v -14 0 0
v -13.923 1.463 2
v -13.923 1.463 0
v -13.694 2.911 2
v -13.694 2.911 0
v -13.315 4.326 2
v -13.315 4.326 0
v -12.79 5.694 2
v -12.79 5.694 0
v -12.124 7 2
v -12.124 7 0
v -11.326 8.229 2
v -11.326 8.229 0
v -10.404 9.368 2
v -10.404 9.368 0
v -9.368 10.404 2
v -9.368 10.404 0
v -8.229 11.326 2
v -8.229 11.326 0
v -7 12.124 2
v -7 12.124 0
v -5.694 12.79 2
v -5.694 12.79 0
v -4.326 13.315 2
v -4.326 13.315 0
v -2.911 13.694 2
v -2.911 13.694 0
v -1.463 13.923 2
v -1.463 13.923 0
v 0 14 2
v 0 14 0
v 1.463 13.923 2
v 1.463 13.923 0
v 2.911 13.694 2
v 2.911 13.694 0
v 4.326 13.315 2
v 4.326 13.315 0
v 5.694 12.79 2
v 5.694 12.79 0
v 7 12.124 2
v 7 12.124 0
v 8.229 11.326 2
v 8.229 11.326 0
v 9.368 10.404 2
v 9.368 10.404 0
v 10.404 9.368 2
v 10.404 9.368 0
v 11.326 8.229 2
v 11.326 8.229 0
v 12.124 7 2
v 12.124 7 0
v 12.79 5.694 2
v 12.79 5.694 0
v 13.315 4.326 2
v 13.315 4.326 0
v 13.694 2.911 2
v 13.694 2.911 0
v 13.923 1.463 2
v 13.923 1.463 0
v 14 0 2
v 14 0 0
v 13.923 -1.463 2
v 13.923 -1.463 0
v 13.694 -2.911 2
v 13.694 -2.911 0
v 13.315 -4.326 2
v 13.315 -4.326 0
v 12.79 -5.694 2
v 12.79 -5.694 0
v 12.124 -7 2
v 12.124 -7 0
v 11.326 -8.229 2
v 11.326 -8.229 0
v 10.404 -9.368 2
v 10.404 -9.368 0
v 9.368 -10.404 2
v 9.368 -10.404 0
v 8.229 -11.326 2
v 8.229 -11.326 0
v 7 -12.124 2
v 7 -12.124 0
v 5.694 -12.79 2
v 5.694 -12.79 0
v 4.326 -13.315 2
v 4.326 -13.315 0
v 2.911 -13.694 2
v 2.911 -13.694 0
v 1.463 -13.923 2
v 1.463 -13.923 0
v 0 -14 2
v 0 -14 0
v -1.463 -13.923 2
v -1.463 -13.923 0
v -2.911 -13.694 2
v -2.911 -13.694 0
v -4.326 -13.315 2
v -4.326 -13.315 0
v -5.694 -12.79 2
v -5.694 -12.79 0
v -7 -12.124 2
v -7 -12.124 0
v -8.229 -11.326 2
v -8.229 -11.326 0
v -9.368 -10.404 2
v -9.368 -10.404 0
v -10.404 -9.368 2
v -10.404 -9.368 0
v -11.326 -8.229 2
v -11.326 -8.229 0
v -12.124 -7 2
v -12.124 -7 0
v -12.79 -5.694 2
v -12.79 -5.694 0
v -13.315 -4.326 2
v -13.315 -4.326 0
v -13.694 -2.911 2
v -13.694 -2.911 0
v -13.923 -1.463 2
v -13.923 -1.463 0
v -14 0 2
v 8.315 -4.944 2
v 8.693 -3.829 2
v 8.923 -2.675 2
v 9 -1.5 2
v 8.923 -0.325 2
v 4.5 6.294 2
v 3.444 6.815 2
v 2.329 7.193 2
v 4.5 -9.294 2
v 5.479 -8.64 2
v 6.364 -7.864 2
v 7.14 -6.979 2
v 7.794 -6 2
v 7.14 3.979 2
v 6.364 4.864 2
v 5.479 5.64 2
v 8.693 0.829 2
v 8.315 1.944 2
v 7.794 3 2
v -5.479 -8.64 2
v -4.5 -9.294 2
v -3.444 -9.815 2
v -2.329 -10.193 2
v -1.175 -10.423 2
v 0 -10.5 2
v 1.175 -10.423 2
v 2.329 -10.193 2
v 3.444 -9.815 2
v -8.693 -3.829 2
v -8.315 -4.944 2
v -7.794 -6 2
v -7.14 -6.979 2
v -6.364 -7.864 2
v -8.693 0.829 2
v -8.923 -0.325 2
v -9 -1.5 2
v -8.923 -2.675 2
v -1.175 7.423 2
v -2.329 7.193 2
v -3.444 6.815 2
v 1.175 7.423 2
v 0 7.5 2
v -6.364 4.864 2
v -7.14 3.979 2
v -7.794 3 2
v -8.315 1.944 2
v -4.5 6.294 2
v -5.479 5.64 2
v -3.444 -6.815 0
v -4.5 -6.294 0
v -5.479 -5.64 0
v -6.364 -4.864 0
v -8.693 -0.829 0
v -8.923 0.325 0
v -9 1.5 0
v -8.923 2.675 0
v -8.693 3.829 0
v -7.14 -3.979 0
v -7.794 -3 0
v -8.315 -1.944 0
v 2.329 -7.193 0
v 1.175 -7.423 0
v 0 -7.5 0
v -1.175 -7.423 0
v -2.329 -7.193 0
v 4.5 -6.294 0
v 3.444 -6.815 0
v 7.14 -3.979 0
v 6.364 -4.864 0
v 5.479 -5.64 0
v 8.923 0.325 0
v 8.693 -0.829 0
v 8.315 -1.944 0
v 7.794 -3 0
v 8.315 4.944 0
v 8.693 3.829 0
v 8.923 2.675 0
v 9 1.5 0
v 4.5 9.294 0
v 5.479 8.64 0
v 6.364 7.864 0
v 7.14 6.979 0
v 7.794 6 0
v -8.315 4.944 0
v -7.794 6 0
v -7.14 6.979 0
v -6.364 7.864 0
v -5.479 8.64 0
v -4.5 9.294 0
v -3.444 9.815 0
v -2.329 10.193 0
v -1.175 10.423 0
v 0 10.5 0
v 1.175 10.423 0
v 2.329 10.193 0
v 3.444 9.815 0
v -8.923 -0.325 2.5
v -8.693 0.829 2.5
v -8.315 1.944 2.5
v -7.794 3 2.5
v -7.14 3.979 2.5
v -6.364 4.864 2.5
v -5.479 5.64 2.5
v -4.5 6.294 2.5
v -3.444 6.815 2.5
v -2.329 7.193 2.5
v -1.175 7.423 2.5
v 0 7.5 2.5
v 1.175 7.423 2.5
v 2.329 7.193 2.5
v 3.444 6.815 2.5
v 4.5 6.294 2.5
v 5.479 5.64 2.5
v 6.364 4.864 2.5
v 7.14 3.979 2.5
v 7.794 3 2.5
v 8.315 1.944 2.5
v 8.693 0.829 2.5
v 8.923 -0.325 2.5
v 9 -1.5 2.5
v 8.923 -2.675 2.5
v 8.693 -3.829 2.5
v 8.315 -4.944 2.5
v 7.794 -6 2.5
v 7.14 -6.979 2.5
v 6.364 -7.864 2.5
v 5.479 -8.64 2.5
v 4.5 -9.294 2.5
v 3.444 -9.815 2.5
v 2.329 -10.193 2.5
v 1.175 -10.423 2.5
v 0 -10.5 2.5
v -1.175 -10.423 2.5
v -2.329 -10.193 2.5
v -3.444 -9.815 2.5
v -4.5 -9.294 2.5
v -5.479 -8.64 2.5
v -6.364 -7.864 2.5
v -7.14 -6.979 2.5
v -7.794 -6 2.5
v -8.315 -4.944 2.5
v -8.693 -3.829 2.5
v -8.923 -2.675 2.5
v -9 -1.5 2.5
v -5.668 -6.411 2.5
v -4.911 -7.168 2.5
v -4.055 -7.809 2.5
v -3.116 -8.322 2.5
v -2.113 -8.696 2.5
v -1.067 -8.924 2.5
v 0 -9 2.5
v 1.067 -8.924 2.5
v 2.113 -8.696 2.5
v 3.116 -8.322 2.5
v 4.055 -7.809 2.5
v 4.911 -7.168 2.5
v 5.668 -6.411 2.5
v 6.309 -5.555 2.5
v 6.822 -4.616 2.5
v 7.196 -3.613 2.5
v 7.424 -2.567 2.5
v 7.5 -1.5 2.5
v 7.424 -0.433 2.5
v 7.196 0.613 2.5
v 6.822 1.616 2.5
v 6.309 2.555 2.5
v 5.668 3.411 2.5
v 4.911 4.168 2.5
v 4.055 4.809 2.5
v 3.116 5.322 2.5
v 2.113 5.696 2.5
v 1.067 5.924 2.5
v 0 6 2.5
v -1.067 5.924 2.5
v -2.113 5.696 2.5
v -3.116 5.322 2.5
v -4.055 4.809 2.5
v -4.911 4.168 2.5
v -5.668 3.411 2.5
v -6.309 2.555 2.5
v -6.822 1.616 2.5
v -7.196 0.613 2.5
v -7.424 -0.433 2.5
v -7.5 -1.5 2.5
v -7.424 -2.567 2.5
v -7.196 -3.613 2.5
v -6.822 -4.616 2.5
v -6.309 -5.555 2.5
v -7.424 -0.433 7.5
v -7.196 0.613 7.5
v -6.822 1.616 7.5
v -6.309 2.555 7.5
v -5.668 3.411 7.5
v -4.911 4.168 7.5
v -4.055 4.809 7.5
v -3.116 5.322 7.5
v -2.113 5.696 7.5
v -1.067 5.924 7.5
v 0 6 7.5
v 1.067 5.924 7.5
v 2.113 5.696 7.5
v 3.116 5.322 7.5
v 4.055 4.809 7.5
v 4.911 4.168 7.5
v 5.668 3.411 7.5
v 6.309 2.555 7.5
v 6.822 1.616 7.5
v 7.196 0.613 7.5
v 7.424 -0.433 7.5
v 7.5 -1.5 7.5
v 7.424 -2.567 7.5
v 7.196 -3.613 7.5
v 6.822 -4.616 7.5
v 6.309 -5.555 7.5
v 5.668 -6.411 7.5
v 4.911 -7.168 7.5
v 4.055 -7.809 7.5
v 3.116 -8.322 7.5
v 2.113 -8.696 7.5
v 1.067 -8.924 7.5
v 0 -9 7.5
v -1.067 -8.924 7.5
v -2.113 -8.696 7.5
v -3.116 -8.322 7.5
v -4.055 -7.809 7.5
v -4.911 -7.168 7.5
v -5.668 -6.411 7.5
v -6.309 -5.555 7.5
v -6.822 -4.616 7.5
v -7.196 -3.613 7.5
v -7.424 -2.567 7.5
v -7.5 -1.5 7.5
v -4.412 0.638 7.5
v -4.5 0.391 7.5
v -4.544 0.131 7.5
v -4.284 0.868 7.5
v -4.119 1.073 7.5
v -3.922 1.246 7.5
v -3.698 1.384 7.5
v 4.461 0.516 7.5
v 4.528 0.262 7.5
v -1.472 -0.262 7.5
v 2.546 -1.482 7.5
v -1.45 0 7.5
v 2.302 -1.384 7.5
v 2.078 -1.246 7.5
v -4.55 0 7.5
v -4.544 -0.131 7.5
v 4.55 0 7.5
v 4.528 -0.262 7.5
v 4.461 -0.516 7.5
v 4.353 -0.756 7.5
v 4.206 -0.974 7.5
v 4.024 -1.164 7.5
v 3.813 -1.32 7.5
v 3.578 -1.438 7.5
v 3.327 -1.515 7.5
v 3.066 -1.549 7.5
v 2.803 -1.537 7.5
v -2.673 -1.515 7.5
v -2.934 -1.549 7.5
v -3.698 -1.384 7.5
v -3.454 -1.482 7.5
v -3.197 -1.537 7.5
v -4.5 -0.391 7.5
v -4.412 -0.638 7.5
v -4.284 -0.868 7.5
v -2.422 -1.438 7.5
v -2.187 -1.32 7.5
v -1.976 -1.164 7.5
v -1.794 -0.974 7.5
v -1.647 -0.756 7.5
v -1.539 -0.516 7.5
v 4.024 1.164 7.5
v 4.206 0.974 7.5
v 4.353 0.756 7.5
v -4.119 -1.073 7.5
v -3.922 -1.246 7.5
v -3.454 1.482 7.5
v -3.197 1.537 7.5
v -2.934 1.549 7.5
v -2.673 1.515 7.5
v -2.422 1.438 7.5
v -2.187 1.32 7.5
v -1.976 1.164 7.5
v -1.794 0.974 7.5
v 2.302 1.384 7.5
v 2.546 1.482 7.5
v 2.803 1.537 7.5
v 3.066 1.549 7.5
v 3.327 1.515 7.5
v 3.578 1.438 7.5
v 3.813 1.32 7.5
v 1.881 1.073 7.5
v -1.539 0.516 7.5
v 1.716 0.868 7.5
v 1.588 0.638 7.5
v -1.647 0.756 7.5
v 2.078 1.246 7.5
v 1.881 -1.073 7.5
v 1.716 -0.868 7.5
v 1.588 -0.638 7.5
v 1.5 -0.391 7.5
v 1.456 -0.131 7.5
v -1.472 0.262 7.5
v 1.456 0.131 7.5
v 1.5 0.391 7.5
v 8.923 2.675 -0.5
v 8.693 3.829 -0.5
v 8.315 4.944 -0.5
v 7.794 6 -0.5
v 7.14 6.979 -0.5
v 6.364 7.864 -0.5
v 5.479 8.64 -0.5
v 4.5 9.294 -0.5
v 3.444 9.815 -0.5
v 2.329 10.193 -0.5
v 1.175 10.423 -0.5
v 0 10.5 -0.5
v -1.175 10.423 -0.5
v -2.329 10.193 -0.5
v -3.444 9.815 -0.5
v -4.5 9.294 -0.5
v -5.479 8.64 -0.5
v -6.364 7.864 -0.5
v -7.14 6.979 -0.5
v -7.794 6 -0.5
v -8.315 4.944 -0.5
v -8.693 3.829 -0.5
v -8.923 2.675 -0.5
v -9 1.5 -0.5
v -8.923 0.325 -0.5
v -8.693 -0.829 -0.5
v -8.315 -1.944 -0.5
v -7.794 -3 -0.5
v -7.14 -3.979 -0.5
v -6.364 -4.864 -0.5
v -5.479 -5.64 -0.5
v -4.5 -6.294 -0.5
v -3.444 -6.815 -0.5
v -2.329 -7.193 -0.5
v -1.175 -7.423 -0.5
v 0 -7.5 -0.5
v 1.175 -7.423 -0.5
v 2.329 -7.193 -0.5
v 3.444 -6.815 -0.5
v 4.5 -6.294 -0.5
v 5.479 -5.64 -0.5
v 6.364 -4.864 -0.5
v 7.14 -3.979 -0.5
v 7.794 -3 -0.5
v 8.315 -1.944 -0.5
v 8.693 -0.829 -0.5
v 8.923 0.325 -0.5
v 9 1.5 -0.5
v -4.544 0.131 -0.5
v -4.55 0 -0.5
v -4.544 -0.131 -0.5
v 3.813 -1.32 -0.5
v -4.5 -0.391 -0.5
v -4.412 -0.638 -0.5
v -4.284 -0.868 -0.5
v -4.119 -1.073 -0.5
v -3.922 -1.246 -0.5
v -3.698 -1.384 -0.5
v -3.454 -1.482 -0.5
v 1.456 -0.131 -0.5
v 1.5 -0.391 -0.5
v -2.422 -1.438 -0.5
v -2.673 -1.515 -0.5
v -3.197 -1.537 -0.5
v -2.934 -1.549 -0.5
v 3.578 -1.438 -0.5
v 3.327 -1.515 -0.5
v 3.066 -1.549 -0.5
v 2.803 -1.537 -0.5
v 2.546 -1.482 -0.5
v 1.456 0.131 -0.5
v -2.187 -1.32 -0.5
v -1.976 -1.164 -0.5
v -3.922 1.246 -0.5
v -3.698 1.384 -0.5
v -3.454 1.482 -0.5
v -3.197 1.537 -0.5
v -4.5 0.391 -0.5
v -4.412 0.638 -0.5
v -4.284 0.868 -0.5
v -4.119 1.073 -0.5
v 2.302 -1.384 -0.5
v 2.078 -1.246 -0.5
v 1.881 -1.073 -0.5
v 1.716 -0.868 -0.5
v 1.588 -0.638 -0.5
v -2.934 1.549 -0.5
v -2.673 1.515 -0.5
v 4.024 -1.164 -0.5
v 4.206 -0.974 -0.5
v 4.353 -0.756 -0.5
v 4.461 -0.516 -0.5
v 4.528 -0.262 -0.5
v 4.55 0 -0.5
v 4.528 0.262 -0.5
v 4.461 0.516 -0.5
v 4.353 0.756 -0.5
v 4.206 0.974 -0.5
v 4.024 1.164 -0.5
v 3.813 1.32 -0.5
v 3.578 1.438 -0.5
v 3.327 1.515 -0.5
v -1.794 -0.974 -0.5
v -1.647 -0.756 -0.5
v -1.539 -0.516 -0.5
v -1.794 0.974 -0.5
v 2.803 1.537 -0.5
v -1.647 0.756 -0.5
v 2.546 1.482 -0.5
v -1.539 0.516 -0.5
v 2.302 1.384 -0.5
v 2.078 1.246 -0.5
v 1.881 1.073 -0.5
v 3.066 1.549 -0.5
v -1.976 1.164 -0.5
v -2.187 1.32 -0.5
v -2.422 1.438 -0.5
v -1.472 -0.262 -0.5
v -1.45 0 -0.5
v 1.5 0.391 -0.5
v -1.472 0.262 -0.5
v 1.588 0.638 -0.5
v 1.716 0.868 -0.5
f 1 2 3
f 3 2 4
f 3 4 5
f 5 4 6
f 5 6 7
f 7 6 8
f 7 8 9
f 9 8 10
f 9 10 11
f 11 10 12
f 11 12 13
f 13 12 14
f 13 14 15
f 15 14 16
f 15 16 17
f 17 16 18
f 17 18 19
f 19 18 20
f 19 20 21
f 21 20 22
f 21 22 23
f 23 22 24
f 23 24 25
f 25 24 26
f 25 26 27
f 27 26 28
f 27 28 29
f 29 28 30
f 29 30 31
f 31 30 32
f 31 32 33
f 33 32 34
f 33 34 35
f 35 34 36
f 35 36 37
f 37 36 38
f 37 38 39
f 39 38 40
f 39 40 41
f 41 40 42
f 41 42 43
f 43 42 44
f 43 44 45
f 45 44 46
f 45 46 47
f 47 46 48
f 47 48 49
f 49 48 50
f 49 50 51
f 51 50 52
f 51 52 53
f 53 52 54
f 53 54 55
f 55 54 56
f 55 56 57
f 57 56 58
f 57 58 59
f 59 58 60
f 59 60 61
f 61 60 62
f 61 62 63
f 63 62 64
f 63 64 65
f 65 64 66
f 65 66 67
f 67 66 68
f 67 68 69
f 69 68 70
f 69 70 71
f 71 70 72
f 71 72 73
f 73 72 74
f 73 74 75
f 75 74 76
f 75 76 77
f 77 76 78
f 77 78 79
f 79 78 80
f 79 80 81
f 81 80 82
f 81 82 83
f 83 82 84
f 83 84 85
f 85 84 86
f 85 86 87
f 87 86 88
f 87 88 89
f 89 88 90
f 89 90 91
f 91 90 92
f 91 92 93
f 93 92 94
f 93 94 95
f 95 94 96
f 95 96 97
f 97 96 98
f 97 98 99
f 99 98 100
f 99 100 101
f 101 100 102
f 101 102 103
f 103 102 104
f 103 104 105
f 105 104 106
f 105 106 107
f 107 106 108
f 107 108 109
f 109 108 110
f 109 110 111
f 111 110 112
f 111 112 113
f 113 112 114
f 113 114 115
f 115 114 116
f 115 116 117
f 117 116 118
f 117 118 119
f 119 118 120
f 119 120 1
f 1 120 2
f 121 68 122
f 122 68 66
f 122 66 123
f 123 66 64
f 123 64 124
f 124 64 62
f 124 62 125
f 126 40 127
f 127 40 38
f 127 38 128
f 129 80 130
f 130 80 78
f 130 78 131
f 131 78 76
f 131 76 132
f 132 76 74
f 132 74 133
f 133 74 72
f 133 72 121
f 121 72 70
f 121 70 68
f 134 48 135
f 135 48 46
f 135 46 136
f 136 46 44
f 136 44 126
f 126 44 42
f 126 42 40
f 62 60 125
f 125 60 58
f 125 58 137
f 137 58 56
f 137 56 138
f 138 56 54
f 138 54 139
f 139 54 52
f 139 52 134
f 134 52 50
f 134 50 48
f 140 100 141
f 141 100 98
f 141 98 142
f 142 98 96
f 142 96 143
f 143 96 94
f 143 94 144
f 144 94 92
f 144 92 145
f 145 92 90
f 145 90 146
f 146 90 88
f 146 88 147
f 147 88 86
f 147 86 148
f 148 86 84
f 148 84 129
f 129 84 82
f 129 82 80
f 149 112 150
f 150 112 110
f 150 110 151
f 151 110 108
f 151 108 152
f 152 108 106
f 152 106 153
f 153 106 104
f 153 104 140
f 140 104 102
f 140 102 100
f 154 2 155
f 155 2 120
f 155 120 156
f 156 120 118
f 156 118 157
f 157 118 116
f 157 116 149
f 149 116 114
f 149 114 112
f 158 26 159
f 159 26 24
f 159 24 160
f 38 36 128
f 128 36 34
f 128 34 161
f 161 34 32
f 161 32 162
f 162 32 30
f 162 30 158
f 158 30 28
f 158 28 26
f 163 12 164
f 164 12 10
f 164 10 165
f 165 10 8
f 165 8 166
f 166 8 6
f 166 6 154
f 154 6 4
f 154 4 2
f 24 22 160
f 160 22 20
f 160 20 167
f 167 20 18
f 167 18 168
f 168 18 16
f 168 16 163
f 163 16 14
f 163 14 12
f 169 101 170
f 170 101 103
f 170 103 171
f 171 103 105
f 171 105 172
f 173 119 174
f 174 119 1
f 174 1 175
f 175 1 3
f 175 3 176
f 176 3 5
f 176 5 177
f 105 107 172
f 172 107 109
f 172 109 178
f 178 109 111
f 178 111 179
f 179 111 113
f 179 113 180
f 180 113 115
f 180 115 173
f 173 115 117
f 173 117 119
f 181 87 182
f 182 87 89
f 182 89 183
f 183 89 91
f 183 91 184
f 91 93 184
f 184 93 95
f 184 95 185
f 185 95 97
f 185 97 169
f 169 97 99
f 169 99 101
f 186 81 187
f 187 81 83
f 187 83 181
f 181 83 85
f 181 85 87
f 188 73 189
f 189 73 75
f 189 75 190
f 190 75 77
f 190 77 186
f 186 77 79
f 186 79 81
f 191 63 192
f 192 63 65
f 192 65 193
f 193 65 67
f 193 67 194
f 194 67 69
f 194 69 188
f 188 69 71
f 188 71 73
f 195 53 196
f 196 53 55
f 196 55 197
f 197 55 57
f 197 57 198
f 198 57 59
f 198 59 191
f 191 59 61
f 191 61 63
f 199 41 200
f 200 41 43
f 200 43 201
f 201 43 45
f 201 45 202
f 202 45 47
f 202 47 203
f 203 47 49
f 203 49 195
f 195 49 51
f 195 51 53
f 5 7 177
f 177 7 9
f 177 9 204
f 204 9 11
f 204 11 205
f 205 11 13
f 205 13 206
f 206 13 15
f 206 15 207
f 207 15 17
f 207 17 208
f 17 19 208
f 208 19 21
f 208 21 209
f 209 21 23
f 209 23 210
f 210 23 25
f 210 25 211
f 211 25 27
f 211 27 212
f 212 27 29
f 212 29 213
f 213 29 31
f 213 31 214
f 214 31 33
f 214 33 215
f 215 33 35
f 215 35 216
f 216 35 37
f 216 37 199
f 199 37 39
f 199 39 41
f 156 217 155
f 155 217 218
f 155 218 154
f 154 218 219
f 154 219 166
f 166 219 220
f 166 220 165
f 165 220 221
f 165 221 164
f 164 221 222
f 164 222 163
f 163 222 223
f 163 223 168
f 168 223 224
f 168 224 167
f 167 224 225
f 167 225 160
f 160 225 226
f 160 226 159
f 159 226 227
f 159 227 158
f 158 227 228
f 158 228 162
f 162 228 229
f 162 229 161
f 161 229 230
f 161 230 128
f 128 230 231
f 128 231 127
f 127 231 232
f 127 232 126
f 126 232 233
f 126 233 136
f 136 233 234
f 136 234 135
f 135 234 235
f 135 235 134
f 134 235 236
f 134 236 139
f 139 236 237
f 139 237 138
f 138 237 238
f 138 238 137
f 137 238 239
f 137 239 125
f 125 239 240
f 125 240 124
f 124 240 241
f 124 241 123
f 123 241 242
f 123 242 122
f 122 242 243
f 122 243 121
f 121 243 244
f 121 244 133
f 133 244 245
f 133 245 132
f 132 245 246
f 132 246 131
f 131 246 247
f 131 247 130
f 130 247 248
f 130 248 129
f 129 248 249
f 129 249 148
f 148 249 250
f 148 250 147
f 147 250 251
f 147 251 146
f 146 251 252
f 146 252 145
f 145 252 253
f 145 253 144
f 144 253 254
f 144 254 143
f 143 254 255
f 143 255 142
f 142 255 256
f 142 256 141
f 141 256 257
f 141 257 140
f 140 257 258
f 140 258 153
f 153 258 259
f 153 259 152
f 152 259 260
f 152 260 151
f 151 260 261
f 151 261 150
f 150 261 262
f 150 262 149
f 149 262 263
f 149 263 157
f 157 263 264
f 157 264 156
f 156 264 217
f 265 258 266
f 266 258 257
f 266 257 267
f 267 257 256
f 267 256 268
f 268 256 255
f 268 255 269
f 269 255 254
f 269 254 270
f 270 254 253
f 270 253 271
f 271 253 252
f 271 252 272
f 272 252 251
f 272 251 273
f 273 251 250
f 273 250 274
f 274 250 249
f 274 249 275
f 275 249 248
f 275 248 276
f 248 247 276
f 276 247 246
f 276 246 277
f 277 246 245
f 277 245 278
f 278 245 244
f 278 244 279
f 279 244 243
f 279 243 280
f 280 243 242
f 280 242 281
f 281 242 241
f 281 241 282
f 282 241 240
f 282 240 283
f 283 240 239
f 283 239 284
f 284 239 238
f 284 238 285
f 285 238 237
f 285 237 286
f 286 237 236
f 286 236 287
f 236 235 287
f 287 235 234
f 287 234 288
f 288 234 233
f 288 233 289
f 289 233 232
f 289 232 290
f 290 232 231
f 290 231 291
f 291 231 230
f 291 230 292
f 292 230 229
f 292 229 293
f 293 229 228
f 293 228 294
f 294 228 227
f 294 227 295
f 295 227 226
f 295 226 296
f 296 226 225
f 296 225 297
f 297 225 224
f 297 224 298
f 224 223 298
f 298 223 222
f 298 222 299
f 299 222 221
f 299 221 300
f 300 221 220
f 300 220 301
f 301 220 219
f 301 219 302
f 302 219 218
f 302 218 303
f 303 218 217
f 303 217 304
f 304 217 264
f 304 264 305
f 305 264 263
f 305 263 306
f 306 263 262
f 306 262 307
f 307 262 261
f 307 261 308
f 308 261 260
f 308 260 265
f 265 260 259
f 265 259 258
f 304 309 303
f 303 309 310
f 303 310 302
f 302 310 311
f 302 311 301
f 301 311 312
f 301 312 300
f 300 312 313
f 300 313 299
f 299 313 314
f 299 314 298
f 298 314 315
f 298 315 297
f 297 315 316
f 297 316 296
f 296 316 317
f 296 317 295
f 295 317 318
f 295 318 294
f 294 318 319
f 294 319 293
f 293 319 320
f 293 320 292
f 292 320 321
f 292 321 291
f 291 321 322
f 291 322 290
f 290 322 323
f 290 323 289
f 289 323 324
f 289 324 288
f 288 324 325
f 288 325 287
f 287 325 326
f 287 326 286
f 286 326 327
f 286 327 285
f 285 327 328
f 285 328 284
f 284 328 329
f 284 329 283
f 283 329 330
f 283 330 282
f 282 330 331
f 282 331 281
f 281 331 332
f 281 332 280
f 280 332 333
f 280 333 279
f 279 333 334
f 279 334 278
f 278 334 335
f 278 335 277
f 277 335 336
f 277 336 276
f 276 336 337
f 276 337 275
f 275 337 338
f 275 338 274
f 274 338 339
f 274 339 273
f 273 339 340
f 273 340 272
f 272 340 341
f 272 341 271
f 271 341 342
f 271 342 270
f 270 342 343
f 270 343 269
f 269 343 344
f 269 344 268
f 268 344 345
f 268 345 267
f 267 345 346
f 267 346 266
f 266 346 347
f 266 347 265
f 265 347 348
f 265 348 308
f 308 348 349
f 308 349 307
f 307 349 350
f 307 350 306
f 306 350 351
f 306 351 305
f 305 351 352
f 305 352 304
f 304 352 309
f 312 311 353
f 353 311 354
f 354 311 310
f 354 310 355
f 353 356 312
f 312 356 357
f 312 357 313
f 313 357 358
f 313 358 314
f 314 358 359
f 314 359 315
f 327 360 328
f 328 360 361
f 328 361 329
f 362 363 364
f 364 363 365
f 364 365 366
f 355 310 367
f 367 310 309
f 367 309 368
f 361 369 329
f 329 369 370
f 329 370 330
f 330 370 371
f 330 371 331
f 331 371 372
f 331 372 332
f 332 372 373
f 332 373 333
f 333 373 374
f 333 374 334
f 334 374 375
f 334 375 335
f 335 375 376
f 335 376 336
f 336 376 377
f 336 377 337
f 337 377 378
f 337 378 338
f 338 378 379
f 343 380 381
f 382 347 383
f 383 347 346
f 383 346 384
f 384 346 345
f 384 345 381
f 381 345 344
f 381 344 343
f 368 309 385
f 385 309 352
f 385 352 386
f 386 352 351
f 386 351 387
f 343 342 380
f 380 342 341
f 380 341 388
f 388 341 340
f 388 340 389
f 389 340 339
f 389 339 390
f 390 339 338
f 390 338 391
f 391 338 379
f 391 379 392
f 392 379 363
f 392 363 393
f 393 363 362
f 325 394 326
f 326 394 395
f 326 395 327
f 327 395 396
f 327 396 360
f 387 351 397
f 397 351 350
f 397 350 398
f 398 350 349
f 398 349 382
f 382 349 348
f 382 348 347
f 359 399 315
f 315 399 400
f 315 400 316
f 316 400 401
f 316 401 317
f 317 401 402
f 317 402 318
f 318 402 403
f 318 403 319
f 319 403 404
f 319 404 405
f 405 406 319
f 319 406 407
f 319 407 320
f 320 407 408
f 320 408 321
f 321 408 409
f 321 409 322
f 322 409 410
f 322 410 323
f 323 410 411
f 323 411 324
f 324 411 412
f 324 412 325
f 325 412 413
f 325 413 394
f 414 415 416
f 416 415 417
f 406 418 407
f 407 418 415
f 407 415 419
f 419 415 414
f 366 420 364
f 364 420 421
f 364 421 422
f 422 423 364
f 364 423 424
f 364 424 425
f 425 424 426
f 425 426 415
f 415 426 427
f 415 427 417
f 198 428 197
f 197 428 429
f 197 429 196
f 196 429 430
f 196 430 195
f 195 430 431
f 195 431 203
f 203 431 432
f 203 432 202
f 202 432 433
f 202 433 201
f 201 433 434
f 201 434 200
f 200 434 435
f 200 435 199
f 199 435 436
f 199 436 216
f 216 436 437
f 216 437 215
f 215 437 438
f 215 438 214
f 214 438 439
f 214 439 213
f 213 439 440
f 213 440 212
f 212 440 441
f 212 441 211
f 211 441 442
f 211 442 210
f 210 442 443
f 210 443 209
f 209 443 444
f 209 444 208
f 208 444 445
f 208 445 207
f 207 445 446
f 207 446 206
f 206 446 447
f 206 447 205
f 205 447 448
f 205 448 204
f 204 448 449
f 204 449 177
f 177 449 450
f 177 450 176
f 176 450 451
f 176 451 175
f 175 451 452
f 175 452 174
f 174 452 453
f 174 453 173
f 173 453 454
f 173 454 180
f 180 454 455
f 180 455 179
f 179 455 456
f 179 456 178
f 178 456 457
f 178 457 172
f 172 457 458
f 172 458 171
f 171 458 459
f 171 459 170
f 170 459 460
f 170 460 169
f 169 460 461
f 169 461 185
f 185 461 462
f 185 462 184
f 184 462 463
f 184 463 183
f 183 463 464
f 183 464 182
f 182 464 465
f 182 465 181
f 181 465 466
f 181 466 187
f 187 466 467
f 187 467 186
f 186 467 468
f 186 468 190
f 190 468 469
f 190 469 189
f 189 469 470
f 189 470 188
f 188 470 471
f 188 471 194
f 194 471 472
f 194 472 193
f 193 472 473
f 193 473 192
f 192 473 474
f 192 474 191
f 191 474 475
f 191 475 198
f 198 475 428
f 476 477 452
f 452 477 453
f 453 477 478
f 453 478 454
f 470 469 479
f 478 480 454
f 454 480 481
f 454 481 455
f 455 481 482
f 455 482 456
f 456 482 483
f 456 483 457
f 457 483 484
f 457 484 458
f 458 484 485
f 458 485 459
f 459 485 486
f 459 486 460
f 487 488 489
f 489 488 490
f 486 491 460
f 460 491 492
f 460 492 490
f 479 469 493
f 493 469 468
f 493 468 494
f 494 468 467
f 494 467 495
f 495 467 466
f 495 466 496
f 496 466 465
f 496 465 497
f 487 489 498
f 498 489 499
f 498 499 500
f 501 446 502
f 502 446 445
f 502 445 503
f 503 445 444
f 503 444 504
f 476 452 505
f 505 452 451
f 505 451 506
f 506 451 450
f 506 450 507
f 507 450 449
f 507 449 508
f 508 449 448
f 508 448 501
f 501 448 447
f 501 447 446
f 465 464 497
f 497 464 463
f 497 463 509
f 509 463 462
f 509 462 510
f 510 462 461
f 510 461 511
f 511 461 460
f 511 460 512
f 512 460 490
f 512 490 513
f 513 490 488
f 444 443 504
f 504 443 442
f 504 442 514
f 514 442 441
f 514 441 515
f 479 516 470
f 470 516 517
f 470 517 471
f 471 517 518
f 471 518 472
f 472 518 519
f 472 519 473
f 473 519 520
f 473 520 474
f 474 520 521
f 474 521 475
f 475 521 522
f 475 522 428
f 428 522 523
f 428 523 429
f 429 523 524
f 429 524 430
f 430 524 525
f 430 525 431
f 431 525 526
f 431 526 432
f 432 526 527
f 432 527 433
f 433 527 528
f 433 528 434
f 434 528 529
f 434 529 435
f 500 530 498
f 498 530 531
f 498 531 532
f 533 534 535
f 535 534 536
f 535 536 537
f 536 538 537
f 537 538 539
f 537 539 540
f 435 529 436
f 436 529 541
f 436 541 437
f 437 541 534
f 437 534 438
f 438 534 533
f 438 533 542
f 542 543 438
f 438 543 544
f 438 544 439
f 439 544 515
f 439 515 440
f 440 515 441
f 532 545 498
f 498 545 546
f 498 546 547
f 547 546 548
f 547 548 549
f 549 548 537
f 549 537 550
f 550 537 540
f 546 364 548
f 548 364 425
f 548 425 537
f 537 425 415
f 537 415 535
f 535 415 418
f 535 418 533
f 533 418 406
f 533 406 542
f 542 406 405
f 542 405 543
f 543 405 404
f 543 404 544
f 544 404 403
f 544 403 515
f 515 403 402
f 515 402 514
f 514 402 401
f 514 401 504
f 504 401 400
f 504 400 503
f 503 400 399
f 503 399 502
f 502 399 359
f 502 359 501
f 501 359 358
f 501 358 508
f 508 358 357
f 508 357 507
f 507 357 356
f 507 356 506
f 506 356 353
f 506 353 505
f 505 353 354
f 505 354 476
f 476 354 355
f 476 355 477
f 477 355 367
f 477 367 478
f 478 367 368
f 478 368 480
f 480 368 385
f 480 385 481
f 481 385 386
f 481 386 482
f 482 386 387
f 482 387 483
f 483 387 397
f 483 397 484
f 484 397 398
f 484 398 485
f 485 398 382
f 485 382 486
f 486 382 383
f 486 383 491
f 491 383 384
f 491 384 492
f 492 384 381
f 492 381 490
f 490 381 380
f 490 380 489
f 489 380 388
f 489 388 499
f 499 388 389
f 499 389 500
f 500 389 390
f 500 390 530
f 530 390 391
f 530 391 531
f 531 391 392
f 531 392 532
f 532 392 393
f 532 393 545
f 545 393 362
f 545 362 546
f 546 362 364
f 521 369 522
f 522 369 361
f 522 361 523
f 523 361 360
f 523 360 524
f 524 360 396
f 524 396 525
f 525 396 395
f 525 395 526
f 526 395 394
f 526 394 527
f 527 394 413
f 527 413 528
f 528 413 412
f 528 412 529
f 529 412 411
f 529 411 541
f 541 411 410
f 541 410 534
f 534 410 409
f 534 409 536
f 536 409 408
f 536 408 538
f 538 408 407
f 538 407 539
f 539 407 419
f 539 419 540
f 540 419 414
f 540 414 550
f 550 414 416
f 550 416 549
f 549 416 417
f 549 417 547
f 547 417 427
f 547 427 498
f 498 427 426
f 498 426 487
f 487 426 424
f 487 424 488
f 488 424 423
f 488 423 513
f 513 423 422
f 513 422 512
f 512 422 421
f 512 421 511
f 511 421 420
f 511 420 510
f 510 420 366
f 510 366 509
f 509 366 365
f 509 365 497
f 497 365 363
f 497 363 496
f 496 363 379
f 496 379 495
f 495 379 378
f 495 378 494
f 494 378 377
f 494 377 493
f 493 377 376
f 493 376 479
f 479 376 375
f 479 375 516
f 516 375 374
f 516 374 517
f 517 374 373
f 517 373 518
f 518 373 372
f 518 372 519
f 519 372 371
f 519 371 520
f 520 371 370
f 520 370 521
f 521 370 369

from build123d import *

# Parameters (mm, degrees)
SKETCH1_R           = 14
BOSS_EXTRUDE1_DEPTH = 2
SKETCH2_R           = 9
BOSS_EXTRUDE2_DEPTH = 0.5
SKETCH4_R           = 7.5
BOSS_EXTRUDE3_DEPTH = 5
SKETCH6_R           = 9
BOSS_EXTRUDE4_DEPTH = 0.5
SKETCH5_R           = 1.55
CUT_EXTRUDE1_DEPTH  = 22.354156504


with BuildPart() as part:
    # Sketch1 → Boss-Extrude1 (new body)
    with BuildSketch(Plane.XY):
        Circle(SKETCH1_R)
    extrude(amount=BOSS_EXTRUDE1_DEPTH)

    # Sketch2 → Boss-Extrude2 (add)
    with BuildSketch(Plane.XY.offset(2)):
        with Locations((0, -1.5)):
            Circle(SKETCH2_R)
    extrude(amount=BOSS_EXTRUDE2_DEPTH)

    # Sketch4 → Boss-Extrude3 (add)
    with BuildSketch(Plane.XY.offset(2.5)):
        with Locations((0, -1.5)):
            Circle(SKETCH4_R)
    extrude(amount=BOSS_EXTRUDE3_DEPTH)

    # Sketch6 → Boss-Extrude4 (add)
    with BuildSketch(Plane(origin=(0, 0, 0), x_dir=(-1, 0, 0), z_dir=(0, 0, -1))):
        with Locations((0, 1.5)):
            Circle(SKETCH6_R)
    extrude(amount=BOSS_EXTRUDE4_DEPTH)

    # Sketch5 → Cut-Extrude1 (cut, through all)
    with BuildSketch(Plane.XY.offset(7.5)):
        with Locations((3, 0)):
            Circle(SKETCH5_R)
        with Locations(Location((-3, 0, 0), (0, 0, 180))):
            Circle(SKETCH5_R)
    extrude(amount=-CUT_EXTRUDE1_DEPTH, mode=Mode.SUBTRACT)


solid = part.part
